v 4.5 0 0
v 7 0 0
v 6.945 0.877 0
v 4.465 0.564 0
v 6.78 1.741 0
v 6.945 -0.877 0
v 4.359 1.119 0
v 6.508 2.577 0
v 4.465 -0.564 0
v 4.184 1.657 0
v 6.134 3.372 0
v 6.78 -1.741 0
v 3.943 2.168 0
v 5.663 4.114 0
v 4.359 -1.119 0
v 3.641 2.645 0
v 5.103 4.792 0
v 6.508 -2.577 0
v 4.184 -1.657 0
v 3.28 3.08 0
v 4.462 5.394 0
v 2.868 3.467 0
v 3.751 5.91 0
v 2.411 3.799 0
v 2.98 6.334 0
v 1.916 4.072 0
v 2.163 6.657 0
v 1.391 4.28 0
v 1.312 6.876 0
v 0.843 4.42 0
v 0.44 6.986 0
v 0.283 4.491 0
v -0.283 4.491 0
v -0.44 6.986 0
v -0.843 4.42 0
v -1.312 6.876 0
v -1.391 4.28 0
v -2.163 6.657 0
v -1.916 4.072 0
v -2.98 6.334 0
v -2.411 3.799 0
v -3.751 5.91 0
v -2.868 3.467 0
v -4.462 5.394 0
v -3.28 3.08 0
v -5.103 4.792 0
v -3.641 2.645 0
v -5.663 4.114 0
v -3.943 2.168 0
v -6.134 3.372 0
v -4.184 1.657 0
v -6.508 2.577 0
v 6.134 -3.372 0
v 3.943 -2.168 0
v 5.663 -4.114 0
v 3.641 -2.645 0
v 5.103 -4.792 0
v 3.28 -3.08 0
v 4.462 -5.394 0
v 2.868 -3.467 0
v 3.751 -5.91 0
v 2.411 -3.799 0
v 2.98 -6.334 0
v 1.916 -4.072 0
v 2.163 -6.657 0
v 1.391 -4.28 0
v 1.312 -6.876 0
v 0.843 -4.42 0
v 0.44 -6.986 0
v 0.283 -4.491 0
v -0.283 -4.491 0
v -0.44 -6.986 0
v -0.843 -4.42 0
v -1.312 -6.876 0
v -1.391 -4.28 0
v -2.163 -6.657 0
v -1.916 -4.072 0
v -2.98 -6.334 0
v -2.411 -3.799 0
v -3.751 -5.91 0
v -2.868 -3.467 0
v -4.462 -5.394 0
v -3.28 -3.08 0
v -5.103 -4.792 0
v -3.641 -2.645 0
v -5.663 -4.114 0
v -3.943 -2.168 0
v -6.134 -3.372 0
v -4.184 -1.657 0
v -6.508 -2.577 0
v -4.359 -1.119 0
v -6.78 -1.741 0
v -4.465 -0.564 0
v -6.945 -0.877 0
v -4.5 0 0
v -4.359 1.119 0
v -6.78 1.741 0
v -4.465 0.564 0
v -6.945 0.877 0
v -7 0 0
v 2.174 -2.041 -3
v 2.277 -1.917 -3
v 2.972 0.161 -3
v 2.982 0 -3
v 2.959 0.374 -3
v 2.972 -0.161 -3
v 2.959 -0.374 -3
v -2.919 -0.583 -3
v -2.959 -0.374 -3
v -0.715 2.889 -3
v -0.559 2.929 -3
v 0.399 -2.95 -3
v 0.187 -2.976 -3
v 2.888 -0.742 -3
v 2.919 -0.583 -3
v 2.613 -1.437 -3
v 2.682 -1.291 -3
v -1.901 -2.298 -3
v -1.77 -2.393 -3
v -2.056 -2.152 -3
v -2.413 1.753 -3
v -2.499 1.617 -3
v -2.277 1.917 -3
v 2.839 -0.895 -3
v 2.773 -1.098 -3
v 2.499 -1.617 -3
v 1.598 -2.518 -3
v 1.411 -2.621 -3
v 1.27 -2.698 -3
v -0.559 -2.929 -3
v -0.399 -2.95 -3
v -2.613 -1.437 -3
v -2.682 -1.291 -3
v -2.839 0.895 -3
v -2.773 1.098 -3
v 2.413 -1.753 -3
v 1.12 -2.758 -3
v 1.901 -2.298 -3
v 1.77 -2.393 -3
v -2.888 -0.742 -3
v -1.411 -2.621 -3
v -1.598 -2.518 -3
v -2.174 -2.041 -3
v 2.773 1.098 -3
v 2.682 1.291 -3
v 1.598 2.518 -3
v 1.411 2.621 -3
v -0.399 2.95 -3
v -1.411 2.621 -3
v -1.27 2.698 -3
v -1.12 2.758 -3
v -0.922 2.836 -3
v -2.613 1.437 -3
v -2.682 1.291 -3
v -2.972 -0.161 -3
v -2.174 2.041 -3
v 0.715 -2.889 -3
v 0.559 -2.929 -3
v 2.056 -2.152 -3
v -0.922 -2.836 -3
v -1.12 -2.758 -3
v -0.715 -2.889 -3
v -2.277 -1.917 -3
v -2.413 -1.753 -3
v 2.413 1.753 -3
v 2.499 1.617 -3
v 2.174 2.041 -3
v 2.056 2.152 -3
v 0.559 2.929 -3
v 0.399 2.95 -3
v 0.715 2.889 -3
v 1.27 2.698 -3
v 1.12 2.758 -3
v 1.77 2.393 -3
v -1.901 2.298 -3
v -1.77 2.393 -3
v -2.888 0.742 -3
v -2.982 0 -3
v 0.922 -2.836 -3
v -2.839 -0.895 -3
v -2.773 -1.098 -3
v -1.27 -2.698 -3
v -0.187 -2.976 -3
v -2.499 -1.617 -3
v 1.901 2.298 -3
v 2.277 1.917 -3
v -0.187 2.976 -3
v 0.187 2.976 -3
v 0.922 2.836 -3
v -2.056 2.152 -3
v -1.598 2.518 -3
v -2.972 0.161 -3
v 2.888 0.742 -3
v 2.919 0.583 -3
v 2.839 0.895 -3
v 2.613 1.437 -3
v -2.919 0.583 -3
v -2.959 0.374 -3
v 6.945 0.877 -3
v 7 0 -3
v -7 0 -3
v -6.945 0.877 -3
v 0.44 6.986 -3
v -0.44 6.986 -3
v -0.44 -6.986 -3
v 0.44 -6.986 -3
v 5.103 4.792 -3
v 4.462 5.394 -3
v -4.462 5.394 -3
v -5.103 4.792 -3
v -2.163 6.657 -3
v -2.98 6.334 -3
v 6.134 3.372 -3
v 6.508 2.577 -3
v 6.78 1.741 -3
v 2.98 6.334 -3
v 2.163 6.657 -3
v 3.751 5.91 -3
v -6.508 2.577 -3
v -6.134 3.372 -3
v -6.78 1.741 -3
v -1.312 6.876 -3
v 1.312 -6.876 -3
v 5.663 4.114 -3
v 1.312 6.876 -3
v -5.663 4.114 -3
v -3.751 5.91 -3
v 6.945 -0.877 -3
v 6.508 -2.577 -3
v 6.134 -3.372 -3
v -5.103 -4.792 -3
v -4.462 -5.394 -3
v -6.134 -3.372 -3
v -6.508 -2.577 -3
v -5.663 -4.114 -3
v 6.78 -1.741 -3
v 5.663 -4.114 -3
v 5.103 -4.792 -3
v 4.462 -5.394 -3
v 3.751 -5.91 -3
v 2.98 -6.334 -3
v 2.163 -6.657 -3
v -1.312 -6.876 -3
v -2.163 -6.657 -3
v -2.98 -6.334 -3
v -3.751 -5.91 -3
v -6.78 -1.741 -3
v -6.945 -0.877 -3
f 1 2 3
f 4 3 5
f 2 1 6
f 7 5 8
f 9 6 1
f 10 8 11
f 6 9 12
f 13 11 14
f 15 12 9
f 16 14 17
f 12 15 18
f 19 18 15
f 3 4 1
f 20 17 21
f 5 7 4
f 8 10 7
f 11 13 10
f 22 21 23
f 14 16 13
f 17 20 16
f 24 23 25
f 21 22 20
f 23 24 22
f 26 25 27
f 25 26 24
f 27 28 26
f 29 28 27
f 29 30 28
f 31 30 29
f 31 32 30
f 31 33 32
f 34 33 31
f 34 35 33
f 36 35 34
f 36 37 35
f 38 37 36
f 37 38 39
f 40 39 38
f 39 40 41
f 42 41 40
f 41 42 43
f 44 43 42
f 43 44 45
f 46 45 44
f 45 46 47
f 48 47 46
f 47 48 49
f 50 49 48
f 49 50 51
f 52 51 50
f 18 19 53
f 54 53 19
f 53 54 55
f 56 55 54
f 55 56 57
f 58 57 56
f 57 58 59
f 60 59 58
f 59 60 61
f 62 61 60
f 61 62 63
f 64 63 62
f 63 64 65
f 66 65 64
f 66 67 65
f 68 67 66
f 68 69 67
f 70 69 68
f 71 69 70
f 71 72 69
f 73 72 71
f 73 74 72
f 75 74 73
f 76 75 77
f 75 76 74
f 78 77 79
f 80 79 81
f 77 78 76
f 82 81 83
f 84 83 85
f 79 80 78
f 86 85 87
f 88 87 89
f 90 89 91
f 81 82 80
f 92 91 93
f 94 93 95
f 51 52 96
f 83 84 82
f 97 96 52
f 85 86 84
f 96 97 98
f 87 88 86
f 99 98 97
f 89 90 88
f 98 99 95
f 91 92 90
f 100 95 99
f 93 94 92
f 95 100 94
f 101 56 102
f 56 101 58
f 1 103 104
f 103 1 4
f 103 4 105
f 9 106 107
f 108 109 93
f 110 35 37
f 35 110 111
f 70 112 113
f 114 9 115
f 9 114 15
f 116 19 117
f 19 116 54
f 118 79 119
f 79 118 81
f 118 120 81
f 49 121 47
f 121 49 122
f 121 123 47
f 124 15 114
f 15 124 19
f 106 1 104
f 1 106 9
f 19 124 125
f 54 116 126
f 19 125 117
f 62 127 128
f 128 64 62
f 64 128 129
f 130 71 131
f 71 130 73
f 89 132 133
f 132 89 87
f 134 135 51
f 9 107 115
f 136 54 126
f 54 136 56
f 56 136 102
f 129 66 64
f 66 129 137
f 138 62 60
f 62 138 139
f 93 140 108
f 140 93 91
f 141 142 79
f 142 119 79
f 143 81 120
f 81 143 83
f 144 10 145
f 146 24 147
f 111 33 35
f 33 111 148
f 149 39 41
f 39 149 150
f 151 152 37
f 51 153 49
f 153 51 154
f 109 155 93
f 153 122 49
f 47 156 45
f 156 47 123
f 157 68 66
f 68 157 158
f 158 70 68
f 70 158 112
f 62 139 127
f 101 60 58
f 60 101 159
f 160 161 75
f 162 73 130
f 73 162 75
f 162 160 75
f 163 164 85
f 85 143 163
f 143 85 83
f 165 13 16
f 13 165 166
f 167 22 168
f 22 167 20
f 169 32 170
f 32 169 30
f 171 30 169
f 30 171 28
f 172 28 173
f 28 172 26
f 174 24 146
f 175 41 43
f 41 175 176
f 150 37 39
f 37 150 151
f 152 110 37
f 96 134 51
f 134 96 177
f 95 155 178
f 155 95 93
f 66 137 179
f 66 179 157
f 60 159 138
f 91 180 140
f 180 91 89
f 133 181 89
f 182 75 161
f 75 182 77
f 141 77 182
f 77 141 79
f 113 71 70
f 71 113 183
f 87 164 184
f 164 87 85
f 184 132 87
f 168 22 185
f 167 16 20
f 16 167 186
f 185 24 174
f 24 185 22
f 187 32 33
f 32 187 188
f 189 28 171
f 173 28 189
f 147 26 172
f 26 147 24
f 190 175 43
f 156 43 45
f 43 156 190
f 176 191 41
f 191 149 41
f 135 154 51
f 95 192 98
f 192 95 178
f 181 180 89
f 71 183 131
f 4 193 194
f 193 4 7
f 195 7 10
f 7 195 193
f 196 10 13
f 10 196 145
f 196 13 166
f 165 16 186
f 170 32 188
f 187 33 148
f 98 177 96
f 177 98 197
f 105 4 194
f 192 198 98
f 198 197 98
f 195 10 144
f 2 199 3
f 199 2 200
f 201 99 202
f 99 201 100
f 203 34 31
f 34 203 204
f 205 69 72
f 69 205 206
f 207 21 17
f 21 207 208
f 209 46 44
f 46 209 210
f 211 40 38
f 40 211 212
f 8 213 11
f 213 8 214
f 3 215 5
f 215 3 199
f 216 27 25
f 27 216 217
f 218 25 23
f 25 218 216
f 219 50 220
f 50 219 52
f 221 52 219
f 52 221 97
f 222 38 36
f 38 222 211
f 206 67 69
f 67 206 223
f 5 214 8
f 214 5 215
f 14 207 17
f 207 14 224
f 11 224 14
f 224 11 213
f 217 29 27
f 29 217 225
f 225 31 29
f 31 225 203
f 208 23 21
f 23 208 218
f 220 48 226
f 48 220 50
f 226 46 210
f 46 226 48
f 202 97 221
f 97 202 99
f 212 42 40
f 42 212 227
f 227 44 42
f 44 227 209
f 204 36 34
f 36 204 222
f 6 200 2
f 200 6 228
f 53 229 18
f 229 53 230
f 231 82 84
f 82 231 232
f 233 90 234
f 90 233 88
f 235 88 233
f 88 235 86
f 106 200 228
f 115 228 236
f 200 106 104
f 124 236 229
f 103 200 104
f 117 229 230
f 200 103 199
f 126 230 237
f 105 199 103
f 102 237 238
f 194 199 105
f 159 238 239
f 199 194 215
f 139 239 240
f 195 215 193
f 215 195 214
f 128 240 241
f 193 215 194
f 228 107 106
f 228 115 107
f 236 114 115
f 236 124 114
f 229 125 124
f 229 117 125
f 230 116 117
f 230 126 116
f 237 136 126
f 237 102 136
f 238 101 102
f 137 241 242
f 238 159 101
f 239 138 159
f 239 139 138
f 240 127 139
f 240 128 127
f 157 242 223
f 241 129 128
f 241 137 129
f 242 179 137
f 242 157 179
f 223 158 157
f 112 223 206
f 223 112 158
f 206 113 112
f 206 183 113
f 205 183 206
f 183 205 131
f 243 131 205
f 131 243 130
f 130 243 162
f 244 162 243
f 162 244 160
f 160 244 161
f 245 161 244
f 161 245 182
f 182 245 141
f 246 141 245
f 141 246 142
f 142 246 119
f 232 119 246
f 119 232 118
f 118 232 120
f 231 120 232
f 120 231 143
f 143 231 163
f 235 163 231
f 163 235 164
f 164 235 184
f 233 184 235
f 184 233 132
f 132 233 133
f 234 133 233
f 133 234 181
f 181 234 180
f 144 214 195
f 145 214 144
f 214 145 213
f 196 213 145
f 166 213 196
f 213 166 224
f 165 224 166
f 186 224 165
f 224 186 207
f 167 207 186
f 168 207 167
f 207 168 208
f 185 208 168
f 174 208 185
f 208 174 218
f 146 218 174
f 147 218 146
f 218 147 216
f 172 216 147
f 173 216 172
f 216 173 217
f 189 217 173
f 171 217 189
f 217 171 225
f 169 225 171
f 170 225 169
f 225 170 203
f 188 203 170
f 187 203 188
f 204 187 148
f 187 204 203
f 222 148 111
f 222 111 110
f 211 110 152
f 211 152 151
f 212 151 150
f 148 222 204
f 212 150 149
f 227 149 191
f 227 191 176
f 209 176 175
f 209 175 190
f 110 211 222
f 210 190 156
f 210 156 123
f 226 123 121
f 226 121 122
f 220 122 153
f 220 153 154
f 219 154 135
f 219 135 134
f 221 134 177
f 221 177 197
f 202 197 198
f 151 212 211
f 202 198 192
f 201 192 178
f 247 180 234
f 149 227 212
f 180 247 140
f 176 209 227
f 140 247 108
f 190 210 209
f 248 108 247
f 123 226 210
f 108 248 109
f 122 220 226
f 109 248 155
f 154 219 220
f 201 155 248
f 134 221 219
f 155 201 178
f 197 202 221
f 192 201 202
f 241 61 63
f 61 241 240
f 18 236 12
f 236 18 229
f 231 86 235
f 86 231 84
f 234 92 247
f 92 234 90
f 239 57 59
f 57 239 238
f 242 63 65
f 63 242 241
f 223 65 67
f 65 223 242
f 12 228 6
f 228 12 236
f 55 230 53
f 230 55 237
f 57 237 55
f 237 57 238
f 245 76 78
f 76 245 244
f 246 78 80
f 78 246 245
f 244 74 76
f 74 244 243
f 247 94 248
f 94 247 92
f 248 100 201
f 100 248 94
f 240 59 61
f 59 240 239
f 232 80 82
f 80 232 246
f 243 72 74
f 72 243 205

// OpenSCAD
$fn = 50;


difference() {
	union() {
		translate(v = [0, 0, -3.0000000000]) {
			cylinder(h = 3, r = 7.0000000000);
		}
		cylinder(h = 0, r = 13.0000000000);
	}
	union() {
		translate(v = [0, 0, 0]) {
			rotate(a = [0, 0, 0]) {
				difference() {
					union() {
						#translate(v = [0, 0, -3.0000000000]) {
							cylinder(h = 3, r = 2.2500000000);
						}
						#translate(v = [0, 0, -4.2000000000]) {
							cylinder(h = 4.2000000000, r = 7.0000000000, r1 = 2.3750000000, r2 = 4.5000000000);
						}
						#translate(v = [0, 0, -3.0000000000]) {
							cylinder(h = 3, r = 2.3750000000);
						}
						#translate(v = [0, 0, -3.0000000000]) {
							cylinder(h = 3, r = 2.2500000000);
						}
					}
					union();
				}
			}
		}
	}
}
